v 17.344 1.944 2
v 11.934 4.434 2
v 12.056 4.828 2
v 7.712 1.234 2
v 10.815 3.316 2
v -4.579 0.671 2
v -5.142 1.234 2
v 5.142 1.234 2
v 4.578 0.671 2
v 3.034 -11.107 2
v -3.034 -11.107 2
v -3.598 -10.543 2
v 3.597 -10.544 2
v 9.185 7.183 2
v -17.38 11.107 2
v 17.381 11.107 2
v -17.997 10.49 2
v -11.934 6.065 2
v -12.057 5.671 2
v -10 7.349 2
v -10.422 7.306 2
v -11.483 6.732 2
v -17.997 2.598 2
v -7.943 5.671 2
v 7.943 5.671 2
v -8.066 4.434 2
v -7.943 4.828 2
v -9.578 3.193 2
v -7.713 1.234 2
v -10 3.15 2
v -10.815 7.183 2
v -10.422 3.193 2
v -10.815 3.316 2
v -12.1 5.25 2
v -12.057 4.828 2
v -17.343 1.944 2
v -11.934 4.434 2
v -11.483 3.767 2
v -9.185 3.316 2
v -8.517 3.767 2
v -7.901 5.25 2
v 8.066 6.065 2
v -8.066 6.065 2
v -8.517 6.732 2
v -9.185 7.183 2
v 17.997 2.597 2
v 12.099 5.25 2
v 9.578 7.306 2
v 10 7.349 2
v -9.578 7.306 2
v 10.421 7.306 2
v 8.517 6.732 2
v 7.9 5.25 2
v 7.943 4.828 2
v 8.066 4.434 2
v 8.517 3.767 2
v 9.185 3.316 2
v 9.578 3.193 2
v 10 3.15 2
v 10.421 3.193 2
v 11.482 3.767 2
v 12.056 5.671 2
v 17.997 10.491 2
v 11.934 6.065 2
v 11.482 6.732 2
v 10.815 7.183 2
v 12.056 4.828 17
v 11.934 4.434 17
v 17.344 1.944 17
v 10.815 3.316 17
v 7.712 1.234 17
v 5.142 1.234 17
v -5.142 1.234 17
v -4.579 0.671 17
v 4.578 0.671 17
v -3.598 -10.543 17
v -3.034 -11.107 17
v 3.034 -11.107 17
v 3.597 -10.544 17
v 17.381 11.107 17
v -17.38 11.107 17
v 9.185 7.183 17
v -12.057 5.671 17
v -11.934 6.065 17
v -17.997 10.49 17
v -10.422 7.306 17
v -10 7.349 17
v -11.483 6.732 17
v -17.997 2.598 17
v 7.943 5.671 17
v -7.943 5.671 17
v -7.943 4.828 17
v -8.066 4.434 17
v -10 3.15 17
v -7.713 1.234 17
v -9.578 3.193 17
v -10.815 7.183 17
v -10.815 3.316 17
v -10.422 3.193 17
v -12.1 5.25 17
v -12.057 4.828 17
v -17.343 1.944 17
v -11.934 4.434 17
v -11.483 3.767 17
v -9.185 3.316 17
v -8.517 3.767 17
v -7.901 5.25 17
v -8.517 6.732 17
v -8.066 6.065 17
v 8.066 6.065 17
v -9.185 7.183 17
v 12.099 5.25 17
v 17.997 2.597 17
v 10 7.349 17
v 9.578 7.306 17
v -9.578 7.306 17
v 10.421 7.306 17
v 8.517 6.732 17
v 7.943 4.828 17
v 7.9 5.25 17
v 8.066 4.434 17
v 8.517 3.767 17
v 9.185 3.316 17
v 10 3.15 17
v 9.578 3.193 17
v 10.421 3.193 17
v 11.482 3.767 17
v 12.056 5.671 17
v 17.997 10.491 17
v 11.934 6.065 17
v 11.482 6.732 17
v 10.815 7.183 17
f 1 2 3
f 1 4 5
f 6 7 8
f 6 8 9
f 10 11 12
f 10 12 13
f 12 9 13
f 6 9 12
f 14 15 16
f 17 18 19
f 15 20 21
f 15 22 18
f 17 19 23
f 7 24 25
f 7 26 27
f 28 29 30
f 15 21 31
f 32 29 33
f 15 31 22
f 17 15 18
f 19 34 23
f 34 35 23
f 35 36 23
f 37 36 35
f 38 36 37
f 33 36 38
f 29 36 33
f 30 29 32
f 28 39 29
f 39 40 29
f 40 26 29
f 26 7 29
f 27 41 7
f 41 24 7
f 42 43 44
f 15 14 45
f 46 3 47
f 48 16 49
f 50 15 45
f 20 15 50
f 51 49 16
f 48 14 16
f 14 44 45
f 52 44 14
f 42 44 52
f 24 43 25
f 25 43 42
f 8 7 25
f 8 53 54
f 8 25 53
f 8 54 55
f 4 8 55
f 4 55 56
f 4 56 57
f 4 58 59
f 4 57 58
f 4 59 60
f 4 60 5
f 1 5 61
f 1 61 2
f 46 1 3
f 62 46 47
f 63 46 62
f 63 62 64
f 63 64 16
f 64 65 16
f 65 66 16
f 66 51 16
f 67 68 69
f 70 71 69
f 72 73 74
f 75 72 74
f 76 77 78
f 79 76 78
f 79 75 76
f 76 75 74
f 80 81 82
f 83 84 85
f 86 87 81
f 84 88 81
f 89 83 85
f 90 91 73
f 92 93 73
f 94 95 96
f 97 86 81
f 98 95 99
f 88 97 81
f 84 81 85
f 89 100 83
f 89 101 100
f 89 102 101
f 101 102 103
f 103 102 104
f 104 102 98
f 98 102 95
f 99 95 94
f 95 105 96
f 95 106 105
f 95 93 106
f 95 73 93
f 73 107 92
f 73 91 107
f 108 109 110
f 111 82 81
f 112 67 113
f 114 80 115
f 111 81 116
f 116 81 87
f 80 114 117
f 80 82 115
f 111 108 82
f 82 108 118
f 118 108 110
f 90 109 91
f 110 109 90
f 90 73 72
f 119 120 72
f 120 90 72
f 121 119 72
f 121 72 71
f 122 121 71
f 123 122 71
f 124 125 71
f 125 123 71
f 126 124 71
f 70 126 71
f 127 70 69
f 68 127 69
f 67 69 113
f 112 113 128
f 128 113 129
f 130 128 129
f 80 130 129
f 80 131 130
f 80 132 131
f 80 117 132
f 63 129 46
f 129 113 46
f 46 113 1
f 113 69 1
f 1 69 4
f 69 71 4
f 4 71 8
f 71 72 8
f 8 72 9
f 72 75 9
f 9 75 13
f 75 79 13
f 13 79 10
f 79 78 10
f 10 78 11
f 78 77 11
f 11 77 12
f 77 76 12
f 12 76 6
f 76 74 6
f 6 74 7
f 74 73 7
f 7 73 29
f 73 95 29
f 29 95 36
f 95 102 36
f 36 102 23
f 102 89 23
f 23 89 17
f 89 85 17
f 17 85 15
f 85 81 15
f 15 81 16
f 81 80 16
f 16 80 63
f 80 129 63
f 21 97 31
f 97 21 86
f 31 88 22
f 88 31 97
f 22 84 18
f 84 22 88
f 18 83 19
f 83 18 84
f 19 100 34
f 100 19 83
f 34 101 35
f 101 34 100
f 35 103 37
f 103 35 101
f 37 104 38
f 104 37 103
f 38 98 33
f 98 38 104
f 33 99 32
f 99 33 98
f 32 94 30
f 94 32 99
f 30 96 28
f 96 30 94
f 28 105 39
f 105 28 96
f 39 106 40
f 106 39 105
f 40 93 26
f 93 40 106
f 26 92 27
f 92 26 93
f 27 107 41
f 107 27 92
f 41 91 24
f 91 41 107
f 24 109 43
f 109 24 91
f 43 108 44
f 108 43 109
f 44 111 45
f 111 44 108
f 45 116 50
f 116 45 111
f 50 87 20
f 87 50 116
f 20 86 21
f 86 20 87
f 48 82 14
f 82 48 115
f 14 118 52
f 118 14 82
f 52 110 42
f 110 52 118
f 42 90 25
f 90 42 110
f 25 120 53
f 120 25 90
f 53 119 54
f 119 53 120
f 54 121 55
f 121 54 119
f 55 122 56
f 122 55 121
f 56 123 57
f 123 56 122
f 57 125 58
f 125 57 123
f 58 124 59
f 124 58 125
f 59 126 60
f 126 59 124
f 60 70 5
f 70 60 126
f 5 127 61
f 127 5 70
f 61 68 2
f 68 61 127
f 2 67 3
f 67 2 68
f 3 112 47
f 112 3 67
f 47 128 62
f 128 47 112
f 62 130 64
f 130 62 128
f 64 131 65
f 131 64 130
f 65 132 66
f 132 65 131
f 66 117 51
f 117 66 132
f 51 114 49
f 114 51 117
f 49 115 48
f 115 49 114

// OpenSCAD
// Generated by inkscape 0.92.4 + inkscape-paths2openscad 0.25
// Sat May 25 18:52:23 2019 from "stollen35x21+05.svg"

// Module names are of the form poly_<inkscape-path-id>().  As a result,
// you can associate a polygon in this OpenSCAD program with the corresponding
// SVG element in the Inkscape document by looking for the XML element with
// the attribute id="inkscape-path-id".

// fudge value is used to ensure that subtracted solids are a tad taller
// in the z dimension than the polygon being subtracted from.  This helps
// keep the resulting .stl file manifold.
fudge = 0.1;
zsize = 15;
line_fn = 4;
min_line_width = 1.0;
line_width_scale = 1.0;
function min_line_mm(w) = max(min_line_width, w * line_width_scale) * 96/25.4;


path919_0_center = [0.000000,0.000000];
path919_0_points = [[-65.686531,-41.979496],[-68.020517,-39.645512],[-68.020517,-9.817384],[-65.549813,-7.346681],[-29.153325,-4.665039],[-19.434574,-4.665039],[-17.305667,-2.536133],[-13.598636,39.846684],[-11.467776,41.979496],[11.465820,41.979496],[13.594727,39.852543],[17.303711,-2.534180],[19.434572,-4.665039],[29.149413,-4.665039],[65.551766,-7.346681],[68.020517,-9.815431],[68.020517,-39.649418],[65.690436,-41.979496],[-65.686531,-41.979496],[-65.686531,-41.979496],[-37.795903,-27.776370],[-36.202133,-27.614381],[-34.715133,-27.150083],[-32.191808,-25.444919],[-30.486643,-22.921593],[-30.022345,-21.434593],[-29.860356,-19.840822],[-30.022345,-18.247051],[-30.486643,-16.760052],[-32.191808,-14.236726],[-34.715133,-12.531561],[-36.202133,-12.067263],[-37.795903,-11.905274],[-39.389675,-12.067263],[-40.876674,-12.531561],[-43.400000,-14.236726],[-45.105164,-16.760052],[-45.569462,-18.247051],[-45.731451,-19.840822],[-45.569462,-21.434593],[-45.105164,-22.921593],[-43.400000,-25.444919],[-40.876674,-27.150083],[-39.389675,-27.614381],[-37.795903,-27.776370],[-37.795903,-27.776370],[37.793943,-27.776370],[39.387715,-27.614381],[40.874715,-27.150083],[43.398043,-25.444919],[45.103208,-22.921593],[45.567506,-21.434593],[45.729494,-19.840822],[45.567506,-18.247051],[45.103208,-16.760052],[43.398043,-14.236726],[40.874715,-12.531561],[39.387715,-12.067263],[37.793943,-11.905274],[36.200175,-12.067266],[34.713177,-12.531566],[32.189853,-14.236731],[30.484688,-16.760055],[30.020391,-18.247053],[29.858403,-19.840822],[30.020391,-21.434591],[30.484688,-22.921589],[32.189853,-25.444913],[34.713177,-27.150079],[36.200175,-27.614378],[37.793943,-27.776370],[37.793943,-27.776370]];
path919_0_paths = [[0,1,2,3,4,5,6,7,8,9,10,11,12,13,14,15,16,17,18,19],
				[20,21,22,23,24,25,26,27,28,29,30,31,32,33,34,35,36,37,38,39,40,41,42,43,44,45],
				[46,47,48,49,50,51,52,53,54,55,56,57,58,59,60,61,62,63,64,65,66,67,68,69,70,71]];
module poly_path919(h, w, s, res=line_fn)
{
  scale([25.4/96, -25.4/96, 1]) union()
  {
    translate (path919_0_center) linear_extrude(height=h, convexity=10, scale=0.01*s)
      translate (-path919_0_center) polygon(path919_0_points, path919_0_paths);
  }
}

module stollen35x2105(h)
{
  difference()
  {
    union()
    {
      translate ([0,0,2]) poly_path919(15, min_line_mm(0.75590551), 100.0);
    }
    union()
    {
    }
  }
}

stollen35x2105(zsize);
